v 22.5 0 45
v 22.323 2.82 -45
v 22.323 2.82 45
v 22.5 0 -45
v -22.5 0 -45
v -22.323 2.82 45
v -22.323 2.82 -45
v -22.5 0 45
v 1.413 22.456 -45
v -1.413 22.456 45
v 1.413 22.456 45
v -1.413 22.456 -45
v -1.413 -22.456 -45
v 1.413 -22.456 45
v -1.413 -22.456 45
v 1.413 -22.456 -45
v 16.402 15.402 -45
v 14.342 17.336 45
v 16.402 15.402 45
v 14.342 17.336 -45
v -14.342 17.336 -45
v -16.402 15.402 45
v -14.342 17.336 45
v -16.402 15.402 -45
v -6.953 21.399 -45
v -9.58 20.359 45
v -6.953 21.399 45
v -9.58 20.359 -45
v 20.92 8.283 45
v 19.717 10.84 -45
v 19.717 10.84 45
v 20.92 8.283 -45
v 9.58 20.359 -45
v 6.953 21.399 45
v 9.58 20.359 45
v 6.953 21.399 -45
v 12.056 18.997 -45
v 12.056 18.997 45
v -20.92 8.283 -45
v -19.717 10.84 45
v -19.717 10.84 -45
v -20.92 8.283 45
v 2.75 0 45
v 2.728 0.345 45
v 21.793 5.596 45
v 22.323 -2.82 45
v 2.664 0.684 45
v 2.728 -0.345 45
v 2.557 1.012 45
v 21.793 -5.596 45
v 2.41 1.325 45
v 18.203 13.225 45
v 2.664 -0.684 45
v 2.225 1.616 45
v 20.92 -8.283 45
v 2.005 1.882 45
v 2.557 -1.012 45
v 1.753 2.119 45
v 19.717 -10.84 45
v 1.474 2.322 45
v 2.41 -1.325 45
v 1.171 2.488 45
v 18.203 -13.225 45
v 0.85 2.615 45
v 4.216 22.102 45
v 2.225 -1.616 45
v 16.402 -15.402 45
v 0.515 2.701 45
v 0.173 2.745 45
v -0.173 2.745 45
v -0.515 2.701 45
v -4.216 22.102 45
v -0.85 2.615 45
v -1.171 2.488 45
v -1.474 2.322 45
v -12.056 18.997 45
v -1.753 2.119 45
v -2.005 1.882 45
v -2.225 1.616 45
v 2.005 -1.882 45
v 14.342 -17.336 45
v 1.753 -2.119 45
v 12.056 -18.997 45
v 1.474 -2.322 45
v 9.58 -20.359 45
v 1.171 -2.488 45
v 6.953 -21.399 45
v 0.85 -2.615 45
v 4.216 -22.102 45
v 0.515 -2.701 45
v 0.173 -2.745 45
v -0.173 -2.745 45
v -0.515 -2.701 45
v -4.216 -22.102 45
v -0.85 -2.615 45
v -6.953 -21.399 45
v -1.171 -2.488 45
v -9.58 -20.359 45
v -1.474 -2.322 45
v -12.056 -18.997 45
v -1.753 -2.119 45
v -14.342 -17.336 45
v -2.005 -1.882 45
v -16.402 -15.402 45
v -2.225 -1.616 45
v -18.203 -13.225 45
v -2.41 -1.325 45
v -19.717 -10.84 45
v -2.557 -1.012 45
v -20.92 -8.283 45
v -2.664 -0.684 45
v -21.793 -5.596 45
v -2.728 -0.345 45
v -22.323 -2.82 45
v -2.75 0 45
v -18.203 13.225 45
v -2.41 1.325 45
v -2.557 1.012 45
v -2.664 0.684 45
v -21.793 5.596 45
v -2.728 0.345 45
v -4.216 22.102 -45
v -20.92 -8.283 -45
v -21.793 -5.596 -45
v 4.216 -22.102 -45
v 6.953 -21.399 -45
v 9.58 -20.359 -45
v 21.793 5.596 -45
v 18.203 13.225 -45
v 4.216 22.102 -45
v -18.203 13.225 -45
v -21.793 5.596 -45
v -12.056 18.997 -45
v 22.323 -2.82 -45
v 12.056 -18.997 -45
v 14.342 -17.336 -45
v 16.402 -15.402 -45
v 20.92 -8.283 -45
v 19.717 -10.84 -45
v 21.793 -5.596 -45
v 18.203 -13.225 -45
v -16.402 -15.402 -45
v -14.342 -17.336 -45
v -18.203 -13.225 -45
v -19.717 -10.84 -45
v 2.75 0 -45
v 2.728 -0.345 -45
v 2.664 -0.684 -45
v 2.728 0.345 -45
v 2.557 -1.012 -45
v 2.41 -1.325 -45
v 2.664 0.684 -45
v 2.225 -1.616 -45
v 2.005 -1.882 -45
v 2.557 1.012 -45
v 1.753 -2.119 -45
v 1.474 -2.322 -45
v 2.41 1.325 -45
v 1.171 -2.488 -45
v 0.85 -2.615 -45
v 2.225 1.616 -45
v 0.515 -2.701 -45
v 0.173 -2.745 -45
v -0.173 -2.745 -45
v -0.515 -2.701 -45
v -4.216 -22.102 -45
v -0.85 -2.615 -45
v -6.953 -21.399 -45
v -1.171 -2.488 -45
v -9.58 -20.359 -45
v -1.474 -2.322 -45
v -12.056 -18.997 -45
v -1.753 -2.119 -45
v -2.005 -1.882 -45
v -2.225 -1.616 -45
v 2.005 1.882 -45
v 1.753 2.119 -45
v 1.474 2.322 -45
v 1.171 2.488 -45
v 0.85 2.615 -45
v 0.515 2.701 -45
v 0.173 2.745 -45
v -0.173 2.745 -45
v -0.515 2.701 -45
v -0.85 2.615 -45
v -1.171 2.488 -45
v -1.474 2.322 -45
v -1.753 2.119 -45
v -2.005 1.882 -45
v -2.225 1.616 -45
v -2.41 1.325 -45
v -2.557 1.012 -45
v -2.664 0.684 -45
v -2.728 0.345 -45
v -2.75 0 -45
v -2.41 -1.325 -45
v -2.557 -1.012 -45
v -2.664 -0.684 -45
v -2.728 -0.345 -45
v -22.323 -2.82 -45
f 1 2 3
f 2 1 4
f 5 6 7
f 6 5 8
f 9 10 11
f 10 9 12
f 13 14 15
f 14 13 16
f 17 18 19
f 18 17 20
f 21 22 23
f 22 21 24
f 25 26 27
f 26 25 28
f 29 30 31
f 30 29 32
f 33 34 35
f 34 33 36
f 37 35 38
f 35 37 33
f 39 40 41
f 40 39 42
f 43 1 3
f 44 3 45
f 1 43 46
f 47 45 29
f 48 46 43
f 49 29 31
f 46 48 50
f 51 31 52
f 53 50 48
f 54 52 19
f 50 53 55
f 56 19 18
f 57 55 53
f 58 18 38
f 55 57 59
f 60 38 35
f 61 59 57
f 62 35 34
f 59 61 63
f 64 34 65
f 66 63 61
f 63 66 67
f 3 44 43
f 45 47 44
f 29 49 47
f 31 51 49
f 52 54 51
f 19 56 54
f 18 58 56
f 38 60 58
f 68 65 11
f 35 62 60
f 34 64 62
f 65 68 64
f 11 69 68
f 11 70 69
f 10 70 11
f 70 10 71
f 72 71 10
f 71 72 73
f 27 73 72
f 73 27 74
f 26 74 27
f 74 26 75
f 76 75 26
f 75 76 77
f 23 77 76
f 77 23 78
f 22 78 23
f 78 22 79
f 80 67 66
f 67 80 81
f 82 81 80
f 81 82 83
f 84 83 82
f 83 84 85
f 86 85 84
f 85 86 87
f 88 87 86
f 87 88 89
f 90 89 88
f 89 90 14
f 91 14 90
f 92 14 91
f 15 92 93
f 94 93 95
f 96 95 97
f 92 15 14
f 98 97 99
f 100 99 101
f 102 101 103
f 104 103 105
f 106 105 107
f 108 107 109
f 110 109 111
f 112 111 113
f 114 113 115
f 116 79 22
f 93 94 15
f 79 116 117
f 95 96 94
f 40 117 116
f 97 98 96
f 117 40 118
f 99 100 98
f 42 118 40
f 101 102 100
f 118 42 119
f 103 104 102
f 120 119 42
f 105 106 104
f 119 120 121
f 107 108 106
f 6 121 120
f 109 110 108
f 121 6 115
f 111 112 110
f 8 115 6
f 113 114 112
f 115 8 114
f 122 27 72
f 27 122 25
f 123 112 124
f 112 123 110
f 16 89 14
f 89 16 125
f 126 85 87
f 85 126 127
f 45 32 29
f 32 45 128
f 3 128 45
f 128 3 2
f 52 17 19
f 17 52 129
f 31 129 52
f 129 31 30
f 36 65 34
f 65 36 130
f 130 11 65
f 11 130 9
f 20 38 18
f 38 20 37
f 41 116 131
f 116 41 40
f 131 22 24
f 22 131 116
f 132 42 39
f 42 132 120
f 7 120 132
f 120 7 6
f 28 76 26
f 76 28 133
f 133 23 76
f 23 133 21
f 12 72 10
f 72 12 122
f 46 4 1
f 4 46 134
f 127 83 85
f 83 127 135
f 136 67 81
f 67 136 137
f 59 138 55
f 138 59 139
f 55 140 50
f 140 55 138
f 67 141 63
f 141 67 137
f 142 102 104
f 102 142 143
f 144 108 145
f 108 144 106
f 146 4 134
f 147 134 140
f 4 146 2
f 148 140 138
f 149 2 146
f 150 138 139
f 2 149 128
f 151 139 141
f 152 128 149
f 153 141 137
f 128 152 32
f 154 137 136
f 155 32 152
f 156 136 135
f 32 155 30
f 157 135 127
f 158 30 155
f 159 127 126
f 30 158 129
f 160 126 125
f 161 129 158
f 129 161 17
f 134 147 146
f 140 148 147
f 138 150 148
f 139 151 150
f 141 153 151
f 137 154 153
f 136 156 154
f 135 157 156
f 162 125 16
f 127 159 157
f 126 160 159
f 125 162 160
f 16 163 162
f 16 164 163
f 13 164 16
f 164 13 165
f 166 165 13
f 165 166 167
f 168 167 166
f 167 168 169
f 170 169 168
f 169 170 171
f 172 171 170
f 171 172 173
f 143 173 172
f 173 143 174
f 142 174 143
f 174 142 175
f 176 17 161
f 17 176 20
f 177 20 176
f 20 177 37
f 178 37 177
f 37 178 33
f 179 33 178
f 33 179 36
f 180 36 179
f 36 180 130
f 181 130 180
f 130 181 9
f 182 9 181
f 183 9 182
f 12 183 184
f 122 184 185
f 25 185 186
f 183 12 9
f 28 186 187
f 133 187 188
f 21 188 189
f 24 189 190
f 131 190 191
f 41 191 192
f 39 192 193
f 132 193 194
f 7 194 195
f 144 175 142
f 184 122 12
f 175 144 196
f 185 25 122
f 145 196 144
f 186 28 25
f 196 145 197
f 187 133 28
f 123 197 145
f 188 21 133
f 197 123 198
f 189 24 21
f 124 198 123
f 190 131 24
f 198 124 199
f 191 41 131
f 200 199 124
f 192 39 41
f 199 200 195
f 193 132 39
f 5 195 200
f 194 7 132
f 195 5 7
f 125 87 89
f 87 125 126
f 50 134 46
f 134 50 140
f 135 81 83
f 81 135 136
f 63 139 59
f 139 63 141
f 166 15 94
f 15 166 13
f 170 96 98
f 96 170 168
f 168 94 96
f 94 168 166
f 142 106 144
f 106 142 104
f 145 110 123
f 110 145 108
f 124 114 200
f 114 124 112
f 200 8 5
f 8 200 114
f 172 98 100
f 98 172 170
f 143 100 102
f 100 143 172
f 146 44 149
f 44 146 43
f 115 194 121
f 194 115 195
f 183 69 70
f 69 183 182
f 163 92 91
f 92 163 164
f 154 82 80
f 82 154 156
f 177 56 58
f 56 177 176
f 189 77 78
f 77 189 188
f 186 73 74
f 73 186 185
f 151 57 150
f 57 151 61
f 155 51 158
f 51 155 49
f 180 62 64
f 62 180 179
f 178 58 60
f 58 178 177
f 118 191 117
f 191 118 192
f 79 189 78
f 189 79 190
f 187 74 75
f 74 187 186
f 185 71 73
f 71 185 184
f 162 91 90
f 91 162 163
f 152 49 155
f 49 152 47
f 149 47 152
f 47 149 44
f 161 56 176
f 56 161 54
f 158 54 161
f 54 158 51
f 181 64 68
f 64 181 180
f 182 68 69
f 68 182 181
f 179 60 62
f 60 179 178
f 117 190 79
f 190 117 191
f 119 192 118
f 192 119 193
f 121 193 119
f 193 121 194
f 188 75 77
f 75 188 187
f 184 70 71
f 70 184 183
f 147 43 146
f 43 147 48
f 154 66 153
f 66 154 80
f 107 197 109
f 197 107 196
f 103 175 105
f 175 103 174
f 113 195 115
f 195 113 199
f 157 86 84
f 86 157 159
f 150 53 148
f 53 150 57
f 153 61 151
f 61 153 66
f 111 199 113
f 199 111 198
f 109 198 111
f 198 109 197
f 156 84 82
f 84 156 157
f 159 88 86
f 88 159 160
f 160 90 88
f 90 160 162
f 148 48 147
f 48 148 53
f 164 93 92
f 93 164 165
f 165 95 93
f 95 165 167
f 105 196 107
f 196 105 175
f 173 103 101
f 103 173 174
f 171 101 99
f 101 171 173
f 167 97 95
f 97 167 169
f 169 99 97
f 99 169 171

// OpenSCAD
$fn = 50;


difference() {
	union() {
		translate(v = [0, 0, -45.0000000000]) {
			cylinder(h = 90, r = 22.5000000000);
		}
	}
	union() {
		translate(v = [0, 0, -100.0000000000]) {
			cylinder(h = 200, r = 2.7500000000);
		}
	}
}
